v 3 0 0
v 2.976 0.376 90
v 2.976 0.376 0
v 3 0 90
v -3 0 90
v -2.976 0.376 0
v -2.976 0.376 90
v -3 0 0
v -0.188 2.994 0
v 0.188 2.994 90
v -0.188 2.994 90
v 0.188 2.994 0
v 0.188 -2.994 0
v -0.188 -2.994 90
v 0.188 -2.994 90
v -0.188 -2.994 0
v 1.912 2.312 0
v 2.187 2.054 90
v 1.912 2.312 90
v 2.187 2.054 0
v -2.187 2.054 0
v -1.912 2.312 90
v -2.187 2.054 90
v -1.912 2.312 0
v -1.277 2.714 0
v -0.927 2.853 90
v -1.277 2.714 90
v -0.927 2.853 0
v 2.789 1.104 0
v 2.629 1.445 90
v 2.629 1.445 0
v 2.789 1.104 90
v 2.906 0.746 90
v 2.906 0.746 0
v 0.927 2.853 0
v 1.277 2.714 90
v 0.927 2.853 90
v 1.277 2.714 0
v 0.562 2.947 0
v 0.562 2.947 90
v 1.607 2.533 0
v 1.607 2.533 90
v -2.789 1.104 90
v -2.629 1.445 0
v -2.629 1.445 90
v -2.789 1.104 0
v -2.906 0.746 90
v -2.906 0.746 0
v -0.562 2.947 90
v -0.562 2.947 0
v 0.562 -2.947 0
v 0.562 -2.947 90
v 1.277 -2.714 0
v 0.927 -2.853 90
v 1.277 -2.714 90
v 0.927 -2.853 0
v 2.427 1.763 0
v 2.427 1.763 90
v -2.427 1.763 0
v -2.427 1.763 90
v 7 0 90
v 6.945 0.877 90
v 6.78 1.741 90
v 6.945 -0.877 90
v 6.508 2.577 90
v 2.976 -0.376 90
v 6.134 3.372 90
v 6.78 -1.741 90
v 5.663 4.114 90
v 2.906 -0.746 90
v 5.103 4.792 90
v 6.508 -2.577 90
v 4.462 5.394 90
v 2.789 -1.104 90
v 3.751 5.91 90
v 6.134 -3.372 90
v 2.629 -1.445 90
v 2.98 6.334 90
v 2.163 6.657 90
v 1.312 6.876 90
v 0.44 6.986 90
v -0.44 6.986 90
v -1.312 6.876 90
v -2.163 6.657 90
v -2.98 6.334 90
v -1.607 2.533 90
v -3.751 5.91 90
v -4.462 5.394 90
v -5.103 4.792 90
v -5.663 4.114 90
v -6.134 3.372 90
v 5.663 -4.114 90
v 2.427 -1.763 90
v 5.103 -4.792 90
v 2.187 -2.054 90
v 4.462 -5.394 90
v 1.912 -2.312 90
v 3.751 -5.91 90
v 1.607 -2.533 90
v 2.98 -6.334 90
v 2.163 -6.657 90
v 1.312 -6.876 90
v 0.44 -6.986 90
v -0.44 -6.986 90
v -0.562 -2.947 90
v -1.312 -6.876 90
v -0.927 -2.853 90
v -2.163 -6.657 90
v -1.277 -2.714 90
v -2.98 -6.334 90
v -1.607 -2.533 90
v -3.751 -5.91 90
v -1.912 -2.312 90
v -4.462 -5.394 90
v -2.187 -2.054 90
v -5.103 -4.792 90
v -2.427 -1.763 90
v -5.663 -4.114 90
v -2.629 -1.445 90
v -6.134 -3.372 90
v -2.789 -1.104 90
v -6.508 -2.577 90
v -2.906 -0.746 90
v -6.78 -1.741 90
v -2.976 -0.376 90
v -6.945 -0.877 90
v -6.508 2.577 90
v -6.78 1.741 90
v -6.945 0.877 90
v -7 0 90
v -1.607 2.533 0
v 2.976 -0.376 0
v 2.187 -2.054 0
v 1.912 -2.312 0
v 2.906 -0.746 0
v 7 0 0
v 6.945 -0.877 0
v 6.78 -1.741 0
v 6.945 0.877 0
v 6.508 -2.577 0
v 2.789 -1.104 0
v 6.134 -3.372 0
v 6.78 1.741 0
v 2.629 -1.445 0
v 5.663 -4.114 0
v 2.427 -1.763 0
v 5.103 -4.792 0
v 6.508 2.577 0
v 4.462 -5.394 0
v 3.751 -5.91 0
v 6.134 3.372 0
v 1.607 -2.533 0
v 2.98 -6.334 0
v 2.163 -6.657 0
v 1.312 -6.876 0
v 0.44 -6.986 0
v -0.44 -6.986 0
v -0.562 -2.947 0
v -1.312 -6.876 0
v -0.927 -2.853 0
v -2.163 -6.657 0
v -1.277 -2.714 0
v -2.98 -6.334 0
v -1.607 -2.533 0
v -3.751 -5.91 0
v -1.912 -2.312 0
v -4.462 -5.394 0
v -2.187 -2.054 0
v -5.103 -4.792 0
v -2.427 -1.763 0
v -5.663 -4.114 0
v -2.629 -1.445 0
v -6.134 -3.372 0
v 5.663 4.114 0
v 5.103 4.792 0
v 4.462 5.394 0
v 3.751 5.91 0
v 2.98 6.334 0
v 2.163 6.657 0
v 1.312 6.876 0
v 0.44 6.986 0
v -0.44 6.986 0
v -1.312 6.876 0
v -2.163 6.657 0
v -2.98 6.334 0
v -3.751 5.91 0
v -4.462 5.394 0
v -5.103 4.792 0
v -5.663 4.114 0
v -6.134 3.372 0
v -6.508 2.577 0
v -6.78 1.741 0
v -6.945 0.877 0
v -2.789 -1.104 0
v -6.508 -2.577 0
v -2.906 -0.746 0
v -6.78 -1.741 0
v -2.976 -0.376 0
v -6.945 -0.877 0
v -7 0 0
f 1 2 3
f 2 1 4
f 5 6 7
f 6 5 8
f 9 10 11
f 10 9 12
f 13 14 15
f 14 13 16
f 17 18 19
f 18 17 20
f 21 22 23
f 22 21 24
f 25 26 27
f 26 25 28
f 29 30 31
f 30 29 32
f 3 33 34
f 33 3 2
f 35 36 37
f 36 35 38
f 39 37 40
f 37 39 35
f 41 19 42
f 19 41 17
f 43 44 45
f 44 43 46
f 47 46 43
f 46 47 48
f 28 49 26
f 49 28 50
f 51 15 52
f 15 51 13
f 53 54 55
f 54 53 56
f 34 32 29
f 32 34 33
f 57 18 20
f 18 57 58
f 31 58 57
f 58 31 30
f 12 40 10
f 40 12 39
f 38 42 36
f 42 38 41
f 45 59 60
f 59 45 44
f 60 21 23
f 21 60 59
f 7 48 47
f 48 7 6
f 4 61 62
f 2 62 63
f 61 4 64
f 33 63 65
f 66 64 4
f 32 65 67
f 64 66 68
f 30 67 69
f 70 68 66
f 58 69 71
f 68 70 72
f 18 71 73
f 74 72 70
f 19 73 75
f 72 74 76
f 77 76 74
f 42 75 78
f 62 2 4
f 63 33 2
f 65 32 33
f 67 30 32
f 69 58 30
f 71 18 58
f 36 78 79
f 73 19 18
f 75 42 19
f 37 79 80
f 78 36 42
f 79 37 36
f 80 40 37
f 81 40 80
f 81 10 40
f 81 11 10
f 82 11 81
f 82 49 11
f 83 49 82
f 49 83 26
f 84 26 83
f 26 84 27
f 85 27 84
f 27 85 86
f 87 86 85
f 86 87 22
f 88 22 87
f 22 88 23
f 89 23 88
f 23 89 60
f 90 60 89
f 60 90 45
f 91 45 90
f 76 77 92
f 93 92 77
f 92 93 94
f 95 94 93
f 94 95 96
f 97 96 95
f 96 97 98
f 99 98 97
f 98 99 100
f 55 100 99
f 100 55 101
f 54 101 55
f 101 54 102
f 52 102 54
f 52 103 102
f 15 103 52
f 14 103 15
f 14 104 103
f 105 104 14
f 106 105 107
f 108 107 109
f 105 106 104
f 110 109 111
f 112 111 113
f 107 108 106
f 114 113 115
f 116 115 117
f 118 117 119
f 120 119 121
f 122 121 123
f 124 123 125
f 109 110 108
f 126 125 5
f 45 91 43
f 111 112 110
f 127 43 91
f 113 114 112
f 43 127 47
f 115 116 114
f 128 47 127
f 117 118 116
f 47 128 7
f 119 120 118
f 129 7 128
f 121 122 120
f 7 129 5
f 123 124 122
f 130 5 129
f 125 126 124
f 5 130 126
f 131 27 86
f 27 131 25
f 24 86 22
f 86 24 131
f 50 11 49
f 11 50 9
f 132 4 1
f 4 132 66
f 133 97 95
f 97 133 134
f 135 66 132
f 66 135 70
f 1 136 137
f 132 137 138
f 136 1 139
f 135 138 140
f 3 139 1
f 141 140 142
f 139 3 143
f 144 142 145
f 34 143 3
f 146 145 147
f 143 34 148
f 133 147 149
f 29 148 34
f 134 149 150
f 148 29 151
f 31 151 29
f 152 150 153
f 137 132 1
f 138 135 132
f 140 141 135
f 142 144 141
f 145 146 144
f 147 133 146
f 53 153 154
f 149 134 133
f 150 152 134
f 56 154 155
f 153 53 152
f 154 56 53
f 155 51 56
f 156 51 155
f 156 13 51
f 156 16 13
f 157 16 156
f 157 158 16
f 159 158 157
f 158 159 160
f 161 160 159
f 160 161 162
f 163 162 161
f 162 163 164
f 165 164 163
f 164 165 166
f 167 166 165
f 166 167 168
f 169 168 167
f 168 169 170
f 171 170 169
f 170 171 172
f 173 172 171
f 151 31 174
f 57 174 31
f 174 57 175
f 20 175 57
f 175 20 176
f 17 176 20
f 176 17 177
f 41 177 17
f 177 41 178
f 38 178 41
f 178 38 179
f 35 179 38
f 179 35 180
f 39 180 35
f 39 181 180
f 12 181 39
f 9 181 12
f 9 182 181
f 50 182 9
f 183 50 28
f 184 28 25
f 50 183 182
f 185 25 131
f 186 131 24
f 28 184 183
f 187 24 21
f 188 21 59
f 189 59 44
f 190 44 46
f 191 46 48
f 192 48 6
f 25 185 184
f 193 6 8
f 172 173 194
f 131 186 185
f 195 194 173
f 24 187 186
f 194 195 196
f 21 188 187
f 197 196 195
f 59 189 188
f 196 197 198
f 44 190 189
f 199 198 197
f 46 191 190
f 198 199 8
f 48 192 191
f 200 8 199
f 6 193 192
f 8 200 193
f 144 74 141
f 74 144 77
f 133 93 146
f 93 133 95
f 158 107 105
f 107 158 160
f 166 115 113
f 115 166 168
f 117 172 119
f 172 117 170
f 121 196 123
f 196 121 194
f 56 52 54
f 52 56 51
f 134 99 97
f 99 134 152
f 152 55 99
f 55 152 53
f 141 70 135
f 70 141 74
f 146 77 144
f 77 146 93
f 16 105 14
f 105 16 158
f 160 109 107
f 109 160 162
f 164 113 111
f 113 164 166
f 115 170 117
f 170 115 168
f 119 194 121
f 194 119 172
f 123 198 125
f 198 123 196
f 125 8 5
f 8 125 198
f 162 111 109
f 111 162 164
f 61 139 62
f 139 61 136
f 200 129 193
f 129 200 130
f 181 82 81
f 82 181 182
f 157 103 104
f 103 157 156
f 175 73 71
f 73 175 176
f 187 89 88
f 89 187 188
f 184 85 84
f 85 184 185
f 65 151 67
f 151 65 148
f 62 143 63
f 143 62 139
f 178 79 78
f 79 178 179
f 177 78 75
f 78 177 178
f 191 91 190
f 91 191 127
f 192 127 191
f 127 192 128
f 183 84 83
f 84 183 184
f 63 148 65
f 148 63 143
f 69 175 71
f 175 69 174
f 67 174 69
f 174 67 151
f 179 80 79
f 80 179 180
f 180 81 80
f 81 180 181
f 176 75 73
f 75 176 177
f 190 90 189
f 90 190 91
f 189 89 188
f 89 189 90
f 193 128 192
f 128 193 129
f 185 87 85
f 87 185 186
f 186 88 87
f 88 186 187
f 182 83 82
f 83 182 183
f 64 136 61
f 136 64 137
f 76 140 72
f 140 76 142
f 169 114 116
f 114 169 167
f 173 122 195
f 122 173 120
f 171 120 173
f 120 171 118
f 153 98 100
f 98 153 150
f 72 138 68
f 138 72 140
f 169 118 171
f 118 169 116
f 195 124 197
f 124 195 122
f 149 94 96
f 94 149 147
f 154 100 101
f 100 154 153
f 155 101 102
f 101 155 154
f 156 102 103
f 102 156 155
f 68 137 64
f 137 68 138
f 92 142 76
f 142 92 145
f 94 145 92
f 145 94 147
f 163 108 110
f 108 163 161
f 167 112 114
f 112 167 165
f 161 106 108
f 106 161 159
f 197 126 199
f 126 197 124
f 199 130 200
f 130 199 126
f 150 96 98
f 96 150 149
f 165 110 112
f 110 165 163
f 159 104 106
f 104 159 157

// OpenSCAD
$fn = 50;


difference() {
	union() {
		cylinder(h = 90, r = 7.0000000000);
	}
	union() {
		translate(v = [0.0000000000, 0.0000000000, -100.0000000000]) {
			cylinder(h = 200, r = 3.0000000000);
		}
		cylinder(h = 90, r = 1.5000000000);
		cylinder(h = 90, r = 1.5000000000);
		cylinder(h = 90, r = 1.5000000000);
	}
}
